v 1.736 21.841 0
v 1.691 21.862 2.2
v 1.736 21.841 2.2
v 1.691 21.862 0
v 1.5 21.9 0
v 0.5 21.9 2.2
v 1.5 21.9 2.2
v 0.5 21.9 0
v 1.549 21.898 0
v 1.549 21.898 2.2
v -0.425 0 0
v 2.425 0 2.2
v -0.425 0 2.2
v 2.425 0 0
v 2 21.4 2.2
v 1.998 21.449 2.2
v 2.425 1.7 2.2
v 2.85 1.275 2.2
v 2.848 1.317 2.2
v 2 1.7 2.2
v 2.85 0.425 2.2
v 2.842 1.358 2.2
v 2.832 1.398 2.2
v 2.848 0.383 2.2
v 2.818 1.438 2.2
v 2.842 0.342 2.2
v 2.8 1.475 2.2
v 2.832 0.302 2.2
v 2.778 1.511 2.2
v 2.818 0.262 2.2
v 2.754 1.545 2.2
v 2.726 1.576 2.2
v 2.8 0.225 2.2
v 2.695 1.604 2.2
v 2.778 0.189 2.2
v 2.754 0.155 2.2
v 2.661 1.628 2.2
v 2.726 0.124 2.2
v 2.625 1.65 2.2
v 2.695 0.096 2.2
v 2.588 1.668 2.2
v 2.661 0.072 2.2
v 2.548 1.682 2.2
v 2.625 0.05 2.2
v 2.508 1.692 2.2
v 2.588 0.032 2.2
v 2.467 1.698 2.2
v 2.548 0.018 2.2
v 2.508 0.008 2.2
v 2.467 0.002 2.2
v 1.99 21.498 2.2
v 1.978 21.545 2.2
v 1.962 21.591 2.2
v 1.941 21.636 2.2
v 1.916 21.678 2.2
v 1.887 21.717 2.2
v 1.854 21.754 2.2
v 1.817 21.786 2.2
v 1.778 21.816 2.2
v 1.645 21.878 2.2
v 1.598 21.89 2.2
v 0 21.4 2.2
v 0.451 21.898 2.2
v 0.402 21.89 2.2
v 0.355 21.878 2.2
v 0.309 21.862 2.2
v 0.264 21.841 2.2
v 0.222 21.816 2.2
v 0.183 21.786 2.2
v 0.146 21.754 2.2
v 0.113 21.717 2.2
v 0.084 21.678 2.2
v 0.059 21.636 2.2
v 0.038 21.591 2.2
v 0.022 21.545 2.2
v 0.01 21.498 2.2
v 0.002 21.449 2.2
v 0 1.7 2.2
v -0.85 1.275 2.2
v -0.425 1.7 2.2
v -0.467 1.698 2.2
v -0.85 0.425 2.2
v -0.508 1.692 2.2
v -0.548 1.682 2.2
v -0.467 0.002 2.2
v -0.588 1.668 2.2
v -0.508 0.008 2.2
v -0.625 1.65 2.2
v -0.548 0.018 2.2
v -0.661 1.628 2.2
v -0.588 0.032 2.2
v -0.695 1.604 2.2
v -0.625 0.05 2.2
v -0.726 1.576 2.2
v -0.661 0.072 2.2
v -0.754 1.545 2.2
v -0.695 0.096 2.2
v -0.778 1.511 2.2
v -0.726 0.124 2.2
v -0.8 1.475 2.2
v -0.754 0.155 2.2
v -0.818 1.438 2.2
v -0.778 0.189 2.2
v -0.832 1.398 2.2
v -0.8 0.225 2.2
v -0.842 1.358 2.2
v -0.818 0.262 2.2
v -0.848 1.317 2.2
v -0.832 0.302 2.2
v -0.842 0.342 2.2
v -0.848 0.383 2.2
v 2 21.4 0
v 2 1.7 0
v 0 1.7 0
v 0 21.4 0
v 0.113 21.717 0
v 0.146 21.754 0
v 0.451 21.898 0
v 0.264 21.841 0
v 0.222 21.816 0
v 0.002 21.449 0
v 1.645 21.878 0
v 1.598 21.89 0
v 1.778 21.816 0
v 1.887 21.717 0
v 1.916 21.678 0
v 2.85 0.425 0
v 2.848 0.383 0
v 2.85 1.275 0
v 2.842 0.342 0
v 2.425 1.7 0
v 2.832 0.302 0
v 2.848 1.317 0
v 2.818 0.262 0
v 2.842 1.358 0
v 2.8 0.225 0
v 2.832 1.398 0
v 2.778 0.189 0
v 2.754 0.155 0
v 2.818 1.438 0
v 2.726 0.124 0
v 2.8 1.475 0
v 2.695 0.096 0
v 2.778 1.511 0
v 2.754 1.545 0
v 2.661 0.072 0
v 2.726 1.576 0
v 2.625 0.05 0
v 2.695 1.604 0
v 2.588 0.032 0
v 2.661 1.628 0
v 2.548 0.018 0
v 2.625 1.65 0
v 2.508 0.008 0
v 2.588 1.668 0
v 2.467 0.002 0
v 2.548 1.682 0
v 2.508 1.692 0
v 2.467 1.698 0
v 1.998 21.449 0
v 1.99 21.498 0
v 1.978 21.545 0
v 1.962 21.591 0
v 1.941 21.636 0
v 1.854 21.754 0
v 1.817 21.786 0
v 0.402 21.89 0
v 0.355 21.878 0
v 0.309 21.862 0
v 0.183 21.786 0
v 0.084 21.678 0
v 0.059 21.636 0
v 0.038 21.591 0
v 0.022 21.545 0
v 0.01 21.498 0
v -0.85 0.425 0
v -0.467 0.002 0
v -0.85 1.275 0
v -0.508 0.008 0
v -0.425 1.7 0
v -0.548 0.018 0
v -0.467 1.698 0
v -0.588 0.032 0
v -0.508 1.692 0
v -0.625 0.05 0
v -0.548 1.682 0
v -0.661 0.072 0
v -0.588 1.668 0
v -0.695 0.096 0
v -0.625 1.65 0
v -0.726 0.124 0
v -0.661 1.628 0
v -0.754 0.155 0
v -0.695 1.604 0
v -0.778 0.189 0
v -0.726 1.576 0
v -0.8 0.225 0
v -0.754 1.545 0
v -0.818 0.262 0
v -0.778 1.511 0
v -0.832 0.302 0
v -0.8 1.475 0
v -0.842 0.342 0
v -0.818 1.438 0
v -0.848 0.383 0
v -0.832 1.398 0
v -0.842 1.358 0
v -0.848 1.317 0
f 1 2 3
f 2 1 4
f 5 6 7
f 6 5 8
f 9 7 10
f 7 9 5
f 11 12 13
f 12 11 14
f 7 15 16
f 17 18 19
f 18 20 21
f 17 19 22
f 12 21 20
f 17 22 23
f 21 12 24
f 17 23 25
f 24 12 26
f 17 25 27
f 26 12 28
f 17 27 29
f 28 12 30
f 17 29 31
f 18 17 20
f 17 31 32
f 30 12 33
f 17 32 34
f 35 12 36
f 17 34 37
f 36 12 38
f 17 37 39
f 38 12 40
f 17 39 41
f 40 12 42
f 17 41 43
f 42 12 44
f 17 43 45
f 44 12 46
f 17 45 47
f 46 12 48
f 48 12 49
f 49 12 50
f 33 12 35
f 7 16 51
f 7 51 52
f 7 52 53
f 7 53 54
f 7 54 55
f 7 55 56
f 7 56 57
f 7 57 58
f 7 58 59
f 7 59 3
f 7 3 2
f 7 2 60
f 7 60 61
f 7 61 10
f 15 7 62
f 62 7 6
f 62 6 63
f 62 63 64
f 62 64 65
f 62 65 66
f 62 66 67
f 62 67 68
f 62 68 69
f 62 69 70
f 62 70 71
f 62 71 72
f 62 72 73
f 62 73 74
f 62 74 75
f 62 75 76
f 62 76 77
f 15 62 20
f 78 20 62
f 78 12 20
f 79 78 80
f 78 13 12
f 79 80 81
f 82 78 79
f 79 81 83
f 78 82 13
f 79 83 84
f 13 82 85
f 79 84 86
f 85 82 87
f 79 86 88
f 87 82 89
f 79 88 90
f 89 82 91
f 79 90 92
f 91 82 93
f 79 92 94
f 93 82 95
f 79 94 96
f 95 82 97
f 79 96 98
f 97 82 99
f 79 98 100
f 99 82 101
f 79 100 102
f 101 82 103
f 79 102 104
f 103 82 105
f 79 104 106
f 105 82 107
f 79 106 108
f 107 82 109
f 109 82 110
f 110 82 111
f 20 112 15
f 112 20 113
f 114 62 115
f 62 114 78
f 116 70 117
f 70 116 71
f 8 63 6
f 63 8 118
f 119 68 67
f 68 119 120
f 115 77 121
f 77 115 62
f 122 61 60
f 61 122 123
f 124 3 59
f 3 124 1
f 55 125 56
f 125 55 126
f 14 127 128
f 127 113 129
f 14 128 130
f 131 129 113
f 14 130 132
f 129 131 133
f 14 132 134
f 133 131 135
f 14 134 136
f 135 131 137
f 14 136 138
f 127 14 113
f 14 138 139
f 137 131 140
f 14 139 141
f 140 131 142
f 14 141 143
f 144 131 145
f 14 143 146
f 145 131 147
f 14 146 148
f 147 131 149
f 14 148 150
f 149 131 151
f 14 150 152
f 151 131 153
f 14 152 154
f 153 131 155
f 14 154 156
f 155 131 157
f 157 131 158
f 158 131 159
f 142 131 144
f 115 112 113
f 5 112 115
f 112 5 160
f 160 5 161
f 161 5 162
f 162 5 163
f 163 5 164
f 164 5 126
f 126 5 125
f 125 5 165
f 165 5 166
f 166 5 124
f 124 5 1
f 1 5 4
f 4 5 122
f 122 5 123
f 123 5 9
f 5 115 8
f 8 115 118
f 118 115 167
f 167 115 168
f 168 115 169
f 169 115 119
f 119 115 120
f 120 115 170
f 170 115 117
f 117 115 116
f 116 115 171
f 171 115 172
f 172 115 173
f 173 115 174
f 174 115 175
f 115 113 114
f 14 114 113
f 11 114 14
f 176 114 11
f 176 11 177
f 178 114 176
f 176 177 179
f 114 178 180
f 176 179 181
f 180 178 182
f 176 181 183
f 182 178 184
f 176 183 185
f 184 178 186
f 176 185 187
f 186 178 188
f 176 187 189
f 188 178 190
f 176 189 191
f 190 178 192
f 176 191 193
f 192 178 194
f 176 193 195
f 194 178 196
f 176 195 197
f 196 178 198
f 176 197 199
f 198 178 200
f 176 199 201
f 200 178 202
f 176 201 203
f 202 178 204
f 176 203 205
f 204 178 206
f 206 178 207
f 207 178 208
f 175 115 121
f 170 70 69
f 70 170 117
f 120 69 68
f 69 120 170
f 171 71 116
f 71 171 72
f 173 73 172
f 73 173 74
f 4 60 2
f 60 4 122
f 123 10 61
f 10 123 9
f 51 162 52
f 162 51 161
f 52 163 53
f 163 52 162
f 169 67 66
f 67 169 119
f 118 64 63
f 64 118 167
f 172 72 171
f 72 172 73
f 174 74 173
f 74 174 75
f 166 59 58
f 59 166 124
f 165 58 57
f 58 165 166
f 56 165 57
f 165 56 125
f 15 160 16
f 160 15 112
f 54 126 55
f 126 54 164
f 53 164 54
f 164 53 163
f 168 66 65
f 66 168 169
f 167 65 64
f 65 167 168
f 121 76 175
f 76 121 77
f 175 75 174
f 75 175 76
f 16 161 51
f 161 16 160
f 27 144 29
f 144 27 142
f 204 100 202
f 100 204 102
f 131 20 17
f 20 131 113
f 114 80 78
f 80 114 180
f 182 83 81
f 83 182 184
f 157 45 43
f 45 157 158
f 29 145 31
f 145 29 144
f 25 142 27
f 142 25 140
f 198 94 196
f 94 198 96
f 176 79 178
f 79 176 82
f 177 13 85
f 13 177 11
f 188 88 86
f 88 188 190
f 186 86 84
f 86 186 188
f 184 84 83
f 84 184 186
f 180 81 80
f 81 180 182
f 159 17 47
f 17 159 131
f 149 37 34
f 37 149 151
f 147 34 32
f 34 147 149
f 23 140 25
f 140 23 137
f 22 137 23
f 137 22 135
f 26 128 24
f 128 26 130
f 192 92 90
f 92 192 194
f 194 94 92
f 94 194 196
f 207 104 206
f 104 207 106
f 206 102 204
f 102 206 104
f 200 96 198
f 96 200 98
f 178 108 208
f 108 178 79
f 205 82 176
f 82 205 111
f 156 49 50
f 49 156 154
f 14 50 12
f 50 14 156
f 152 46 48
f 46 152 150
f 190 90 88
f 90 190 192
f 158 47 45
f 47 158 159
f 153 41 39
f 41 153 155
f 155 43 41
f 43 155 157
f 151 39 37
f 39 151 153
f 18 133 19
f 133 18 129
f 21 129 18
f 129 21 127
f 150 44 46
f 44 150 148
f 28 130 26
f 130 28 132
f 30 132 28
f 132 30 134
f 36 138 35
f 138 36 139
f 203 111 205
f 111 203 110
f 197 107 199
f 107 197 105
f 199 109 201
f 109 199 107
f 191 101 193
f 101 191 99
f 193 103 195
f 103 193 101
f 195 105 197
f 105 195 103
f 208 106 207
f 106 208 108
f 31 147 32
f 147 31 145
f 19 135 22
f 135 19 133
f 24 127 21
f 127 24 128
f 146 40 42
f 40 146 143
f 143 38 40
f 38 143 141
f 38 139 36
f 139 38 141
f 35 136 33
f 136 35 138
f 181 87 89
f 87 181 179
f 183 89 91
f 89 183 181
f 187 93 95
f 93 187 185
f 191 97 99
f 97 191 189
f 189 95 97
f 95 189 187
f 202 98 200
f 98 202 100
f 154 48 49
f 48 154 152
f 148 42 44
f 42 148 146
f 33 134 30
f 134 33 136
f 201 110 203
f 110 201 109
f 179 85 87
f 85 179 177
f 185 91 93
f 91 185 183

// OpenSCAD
pegLength = 21.9;
pegWidth = 2;
bellendWidth = 3.7;
bellendLength = 1.7;
bellendStickout = (bellendWidth - pegWidth)/2;
pegThickness = 2.2;

$fn = 64;

module roundedRect(w, h, d, r) {
    ew = w - 2*r;
    eh = h - 2*r;
    ed = d - 2*r;
    translate([r, r, 0]) minkowski() {
        cube([ew, eh, d/2]);
        cylinder(r=r, h=d/2);
    }
}

module peg() {
    roundedRect(pegWidth, pegLength, pegThickness, pegWidth/4);
    translate([-bellendStickout, 0, 0])
        roundedRect(bellendWidth, bellendLength, pegThickness, bellendStickout/2);
}

peg();
